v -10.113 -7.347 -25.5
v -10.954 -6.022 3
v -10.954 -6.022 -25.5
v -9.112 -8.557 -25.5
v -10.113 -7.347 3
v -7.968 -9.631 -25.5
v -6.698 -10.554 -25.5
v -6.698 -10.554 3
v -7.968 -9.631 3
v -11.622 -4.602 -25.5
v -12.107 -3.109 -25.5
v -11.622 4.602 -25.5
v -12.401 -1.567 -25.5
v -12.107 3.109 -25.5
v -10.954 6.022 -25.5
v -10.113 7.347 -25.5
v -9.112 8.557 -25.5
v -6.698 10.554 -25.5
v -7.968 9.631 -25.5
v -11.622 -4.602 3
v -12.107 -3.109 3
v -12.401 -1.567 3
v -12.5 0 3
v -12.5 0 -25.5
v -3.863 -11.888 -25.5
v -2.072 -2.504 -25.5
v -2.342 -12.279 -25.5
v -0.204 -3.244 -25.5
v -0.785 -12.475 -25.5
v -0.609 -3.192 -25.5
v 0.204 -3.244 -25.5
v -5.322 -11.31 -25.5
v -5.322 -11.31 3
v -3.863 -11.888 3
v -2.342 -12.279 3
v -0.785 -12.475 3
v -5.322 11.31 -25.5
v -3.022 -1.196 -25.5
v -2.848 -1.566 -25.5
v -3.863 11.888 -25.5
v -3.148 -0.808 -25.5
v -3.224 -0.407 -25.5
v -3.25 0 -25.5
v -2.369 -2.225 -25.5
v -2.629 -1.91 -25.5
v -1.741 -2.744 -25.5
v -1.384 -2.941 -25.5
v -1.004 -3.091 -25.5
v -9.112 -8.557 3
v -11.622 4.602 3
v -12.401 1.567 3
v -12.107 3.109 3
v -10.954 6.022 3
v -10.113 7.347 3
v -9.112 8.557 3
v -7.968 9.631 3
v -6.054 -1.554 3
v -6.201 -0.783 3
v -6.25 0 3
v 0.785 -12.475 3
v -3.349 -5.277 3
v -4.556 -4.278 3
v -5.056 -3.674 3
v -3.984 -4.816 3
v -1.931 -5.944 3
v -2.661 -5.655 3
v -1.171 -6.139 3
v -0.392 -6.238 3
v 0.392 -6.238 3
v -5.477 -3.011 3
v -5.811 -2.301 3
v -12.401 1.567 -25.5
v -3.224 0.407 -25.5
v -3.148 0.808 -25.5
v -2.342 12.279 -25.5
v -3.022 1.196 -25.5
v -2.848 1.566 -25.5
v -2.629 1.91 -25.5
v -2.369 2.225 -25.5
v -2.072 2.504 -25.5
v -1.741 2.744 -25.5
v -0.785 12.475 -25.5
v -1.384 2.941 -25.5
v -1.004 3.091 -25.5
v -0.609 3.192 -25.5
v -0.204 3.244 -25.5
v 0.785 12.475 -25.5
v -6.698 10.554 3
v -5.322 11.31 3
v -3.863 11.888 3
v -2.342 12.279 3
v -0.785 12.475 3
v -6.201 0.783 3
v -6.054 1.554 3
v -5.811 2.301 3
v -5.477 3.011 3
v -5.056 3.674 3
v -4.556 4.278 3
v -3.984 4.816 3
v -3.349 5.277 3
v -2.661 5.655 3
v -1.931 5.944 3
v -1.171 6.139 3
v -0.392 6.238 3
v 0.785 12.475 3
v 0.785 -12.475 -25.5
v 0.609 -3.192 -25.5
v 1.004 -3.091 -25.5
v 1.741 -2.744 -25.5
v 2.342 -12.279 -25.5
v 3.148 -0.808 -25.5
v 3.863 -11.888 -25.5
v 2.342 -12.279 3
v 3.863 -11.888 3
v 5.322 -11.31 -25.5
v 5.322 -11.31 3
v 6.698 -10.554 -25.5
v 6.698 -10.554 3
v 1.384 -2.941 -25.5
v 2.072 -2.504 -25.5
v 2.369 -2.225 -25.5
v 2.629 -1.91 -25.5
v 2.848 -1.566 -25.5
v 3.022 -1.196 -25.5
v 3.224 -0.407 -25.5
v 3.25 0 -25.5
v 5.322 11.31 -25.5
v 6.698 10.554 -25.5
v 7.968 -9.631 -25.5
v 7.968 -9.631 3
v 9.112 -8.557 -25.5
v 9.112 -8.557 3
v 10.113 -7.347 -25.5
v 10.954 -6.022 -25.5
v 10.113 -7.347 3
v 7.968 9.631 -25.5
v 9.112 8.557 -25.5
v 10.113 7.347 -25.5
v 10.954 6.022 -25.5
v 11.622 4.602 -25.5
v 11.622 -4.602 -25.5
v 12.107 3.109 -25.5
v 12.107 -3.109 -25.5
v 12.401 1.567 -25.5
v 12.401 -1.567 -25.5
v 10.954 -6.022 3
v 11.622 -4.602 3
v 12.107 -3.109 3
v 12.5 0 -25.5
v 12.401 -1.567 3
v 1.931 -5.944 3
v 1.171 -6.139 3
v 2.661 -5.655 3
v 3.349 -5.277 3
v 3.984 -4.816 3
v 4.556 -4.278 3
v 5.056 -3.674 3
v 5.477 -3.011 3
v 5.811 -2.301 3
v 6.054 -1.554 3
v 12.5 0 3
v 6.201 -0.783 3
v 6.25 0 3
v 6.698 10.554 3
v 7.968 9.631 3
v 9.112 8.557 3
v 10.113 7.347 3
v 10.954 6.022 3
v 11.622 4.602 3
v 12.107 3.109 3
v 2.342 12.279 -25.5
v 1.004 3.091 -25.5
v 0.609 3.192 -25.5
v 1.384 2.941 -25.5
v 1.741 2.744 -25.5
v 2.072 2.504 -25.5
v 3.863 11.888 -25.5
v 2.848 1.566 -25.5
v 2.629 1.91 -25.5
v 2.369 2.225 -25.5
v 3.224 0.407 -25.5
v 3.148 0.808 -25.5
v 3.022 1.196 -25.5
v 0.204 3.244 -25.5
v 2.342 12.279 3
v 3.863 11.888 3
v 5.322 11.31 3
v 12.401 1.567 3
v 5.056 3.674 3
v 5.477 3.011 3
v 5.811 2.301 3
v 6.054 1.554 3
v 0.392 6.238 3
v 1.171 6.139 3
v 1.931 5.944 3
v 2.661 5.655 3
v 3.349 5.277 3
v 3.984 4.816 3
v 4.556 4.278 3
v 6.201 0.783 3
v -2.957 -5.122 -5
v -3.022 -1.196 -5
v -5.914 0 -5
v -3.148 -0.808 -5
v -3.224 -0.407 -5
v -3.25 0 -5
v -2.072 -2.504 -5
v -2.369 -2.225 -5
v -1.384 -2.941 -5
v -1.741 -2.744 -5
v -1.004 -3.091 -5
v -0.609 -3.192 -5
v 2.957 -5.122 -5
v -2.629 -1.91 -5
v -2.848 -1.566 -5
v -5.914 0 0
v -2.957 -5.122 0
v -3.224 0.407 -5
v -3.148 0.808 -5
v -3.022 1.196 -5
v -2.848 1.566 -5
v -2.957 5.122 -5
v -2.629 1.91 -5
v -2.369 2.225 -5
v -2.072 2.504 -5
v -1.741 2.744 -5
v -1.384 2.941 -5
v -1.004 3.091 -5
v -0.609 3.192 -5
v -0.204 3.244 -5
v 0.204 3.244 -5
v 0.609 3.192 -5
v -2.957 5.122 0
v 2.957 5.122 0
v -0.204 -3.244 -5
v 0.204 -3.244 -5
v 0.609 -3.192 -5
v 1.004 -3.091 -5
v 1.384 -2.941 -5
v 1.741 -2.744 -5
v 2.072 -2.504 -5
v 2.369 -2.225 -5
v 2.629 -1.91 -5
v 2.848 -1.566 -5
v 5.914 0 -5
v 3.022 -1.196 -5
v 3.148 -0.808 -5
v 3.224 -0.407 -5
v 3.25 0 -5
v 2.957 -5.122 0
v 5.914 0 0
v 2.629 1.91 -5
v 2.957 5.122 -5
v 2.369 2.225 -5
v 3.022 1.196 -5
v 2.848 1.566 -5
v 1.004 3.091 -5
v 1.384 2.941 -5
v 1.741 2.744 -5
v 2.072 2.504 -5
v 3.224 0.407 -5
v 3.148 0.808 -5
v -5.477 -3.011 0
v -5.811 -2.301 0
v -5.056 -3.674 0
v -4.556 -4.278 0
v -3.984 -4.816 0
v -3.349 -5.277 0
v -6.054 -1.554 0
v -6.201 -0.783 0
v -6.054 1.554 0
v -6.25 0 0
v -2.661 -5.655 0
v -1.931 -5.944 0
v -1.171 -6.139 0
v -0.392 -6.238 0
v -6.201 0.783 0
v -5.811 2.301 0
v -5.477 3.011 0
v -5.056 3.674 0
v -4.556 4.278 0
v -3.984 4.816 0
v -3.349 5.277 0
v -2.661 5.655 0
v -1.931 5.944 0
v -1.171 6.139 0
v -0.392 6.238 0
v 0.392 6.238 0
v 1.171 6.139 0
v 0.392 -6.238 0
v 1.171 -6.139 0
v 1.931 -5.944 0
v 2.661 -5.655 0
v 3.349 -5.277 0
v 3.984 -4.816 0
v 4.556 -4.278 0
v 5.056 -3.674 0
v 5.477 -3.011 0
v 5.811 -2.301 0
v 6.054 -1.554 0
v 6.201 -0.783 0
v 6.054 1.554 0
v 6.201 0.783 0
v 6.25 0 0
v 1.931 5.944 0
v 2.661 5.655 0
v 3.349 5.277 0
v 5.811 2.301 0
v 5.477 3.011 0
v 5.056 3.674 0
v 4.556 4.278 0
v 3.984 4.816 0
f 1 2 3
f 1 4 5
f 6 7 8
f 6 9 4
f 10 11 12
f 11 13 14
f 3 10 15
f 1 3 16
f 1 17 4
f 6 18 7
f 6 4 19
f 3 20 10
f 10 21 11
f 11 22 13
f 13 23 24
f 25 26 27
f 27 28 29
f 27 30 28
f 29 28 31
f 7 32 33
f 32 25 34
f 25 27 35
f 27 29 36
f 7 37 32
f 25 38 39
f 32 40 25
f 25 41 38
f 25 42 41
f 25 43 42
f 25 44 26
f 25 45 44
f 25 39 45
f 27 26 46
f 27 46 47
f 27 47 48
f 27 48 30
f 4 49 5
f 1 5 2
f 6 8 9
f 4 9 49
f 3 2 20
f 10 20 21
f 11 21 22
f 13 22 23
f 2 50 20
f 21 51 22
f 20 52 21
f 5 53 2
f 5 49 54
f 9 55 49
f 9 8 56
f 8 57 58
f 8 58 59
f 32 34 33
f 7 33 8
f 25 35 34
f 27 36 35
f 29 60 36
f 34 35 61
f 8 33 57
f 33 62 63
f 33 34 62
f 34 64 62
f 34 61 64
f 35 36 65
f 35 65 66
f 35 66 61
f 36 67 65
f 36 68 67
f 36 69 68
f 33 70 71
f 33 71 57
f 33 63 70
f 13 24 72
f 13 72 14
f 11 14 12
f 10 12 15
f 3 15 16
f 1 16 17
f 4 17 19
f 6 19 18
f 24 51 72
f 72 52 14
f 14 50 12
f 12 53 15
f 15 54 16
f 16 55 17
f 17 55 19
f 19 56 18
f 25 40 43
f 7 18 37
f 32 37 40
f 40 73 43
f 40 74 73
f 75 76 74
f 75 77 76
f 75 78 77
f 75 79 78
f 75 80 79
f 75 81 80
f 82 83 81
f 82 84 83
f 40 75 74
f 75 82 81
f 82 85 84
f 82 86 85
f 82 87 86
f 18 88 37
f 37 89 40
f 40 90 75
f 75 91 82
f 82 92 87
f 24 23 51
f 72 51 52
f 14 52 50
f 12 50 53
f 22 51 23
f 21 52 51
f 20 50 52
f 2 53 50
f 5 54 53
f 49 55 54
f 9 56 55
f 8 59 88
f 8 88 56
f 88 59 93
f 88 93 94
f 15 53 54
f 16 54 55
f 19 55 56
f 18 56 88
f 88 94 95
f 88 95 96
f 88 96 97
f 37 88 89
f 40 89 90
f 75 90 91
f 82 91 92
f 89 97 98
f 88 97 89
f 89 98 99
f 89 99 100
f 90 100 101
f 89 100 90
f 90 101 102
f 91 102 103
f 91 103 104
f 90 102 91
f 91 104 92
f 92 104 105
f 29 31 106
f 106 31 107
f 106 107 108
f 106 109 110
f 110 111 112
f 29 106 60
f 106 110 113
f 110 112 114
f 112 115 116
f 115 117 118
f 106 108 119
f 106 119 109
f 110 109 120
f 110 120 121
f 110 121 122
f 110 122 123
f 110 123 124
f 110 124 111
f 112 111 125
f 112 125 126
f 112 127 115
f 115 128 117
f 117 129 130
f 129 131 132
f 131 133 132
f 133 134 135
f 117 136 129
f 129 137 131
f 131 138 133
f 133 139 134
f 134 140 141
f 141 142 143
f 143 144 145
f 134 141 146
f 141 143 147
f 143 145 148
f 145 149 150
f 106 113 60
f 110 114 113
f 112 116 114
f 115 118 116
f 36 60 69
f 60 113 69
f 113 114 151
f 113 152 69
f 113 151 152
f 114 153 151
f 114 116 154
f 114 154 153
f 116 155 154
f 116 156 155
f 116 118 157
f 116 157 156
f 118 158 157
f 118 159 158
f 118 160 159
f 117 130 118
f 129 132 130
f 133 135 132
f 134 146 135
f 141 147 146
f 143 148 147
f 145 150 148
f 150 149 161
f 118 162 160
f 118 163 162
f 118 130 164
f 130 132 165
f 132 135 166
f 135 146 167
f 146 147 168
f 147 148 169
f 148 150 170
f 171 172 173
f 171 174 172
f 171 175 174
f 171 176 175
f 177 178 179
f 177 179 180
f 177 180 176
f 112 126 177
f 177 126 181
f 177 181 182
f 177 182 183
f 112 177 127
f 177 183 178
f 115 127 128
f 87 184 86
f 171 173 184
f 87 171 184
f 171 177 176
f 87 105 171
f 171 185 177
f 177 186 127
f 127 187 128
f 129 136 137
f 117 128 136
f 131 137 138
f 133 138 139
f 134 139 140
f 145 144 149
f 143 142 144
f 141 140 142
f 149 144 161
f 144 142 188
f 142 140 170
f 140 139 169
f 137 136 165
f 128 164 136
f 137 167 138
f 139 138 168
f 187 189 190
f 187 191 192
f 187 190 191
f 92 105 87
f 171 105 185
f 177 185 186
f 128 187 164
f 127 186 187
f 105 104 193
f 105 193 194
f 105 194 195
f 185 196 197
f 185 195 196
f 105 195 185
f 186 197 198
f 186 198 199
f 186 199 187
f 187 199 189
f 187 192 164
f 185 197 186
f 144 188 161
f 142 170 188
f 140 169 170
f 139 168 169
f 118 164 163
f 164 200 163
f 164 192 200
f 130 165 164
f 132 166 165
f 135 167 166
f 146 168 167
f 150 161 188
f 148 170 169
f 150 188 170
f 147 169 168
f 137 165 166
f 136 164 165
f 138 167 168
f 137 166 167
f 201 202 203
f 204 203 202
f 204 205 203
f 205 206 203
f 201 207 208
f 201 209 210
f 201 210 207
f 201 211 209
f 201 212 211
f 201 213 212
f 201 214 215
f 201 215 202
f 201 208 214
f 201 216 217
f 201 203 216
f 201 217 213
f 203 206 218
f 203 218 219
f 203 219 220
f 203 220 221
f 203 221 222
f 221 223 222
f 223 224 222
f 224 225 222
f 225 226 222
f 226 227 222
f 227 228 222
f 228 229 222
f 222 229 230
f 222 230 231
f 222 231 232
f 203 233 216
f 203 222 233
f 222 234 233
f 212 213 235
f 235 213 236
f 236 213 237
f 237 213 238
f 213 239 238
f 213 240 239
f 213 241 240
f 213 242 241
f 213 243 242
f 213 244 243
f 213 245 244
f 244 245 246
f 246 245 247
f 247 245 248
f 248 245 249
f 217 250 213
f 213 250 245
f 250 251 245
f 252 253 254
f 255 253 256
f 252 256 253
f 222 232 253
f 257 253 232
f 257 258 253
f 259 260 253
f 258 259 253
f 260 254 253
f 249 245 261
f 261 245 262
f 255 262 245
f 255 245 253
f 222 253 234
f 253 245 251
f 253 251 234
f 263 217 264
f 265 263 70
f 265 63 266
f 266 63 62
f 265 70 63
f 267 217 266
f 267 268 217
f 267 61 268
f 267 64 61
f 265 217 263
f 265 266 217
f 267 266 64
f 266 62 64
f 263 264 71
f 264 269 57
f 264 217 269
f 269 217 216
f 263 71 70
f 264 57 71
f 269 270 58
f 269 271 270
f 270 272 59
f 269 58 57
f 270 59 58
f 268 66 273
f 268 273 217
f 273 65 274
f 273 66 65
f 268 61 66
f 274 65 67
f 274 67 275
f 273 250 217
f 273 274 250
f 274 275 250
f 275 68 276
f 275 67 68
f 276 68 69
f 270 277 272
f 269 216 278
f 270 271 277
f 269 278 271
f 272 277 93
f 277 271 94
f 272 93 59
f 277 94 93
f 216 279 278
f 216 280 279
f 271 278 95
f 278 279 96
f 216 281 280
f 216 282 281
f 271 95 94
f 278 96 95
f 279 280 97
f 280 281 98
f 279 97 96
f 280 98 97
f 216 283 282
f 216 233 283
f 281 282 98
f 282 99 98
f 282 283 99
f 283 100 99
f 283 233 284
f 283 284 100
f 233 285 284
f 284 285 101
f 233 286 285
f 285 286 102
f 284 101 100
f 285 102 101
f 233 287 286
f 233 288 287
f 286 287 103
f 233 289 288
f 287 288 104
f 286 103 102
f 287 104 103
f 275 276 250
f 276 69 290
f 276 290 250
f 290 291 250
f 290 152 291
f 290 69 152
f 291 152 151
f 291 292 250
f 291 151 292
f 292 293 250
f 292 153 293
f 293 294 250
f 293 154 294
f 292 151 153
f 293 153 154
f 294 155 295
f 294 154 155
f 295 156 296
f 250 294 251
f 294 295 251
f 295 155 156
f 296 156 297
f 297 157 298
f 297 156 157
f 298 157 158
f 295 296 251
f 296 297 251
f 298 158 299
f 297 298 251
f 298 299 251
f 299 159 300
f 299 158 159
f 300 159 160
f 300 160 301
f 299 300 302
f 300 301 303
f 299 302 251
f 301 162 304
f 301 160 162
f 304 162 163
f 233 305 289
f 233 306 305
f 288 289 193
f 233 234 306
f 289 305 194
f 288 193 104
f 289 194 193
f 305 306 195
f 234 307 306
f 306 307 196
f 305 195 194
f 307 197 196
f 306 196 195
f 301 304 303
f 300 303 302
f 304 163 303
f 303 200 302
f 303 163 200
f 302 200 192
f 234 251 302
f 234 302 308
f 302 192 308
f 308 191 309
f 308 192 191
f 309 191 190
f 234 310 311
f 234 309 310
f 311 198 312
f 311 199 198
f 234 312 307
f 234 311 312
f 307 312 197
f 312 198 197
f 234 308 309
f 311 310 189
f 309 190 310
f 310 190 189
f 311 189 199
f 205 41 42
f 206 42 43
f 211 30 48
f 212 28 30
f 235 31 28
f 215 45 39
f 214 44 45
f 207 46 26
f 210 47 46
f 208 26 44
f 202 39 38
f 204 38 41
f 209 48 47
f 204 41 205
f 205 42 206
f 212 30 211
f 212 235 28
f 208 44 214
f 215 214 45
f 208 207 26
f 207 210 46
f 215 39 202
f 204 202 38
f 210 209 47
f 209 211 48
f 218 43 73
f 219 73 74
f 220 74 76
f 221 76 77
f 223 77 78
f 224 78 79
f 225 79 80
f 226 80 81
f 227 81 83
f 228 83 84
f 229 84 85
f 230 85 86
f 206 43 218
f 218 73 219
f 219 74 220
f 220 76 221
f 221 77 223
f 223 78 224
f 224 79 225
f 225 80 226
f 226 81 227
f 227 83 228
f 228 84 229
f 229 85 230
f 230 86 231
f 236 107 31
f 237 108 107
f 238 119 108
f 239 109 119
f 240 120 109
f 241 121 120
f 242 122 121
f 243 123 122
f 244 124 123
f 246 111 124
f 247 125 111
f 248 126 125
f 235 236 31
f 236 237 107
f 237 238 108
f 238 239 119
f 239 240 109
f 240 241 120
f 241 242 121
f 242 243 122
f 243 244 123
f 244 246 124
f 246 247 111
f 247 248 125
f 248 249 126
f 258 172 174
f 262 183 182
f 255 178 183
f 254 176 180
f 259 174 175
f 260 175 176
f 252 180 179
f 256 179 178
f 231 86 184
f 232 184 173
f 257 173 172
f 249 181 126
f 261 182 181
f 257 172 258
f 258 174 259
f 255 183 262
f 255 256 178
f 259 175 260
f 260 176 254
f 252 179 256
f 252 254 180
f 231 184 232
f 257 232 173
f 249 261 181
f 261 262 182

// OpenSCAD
$fn = 50;

difference() {
	union() {
		translate(v = [0, 0, -25.5]) {
			cylinder(h = 28.5, r = 12.5);
		}
		#translate(v = [0, 0, -27.0]) {
			cylinder(h = 27, r = 2.875);
		}
	}
	union() {
		translate(v = [0, 0, 0]) {
			rotate(a = [0, 0, 0]) {
				difference() {
					union() {
						translate(v = [0, 0, -5]) {
							linear_extrude(height = 5) {
								polygon(points = [[5.914249999999999, 0.0], [2.957125, 5.1218907443321156], [-2.9571249999999982, 5.1218907443321156], [-5.914249999999999, 7.242867331857232e-16], [-2.9571250000000022, -5.121890744332115], [2.9571249999999956, -5.121890744332118]]);
							}
						}
					}
					union();
				}
			}
		}
		#cylinder(h = 3, r = 6.25);
		#translate(v = [0, 0, -100.0]) {
			cylinder(h = 200, r = 3.25);
		}
	}
}
